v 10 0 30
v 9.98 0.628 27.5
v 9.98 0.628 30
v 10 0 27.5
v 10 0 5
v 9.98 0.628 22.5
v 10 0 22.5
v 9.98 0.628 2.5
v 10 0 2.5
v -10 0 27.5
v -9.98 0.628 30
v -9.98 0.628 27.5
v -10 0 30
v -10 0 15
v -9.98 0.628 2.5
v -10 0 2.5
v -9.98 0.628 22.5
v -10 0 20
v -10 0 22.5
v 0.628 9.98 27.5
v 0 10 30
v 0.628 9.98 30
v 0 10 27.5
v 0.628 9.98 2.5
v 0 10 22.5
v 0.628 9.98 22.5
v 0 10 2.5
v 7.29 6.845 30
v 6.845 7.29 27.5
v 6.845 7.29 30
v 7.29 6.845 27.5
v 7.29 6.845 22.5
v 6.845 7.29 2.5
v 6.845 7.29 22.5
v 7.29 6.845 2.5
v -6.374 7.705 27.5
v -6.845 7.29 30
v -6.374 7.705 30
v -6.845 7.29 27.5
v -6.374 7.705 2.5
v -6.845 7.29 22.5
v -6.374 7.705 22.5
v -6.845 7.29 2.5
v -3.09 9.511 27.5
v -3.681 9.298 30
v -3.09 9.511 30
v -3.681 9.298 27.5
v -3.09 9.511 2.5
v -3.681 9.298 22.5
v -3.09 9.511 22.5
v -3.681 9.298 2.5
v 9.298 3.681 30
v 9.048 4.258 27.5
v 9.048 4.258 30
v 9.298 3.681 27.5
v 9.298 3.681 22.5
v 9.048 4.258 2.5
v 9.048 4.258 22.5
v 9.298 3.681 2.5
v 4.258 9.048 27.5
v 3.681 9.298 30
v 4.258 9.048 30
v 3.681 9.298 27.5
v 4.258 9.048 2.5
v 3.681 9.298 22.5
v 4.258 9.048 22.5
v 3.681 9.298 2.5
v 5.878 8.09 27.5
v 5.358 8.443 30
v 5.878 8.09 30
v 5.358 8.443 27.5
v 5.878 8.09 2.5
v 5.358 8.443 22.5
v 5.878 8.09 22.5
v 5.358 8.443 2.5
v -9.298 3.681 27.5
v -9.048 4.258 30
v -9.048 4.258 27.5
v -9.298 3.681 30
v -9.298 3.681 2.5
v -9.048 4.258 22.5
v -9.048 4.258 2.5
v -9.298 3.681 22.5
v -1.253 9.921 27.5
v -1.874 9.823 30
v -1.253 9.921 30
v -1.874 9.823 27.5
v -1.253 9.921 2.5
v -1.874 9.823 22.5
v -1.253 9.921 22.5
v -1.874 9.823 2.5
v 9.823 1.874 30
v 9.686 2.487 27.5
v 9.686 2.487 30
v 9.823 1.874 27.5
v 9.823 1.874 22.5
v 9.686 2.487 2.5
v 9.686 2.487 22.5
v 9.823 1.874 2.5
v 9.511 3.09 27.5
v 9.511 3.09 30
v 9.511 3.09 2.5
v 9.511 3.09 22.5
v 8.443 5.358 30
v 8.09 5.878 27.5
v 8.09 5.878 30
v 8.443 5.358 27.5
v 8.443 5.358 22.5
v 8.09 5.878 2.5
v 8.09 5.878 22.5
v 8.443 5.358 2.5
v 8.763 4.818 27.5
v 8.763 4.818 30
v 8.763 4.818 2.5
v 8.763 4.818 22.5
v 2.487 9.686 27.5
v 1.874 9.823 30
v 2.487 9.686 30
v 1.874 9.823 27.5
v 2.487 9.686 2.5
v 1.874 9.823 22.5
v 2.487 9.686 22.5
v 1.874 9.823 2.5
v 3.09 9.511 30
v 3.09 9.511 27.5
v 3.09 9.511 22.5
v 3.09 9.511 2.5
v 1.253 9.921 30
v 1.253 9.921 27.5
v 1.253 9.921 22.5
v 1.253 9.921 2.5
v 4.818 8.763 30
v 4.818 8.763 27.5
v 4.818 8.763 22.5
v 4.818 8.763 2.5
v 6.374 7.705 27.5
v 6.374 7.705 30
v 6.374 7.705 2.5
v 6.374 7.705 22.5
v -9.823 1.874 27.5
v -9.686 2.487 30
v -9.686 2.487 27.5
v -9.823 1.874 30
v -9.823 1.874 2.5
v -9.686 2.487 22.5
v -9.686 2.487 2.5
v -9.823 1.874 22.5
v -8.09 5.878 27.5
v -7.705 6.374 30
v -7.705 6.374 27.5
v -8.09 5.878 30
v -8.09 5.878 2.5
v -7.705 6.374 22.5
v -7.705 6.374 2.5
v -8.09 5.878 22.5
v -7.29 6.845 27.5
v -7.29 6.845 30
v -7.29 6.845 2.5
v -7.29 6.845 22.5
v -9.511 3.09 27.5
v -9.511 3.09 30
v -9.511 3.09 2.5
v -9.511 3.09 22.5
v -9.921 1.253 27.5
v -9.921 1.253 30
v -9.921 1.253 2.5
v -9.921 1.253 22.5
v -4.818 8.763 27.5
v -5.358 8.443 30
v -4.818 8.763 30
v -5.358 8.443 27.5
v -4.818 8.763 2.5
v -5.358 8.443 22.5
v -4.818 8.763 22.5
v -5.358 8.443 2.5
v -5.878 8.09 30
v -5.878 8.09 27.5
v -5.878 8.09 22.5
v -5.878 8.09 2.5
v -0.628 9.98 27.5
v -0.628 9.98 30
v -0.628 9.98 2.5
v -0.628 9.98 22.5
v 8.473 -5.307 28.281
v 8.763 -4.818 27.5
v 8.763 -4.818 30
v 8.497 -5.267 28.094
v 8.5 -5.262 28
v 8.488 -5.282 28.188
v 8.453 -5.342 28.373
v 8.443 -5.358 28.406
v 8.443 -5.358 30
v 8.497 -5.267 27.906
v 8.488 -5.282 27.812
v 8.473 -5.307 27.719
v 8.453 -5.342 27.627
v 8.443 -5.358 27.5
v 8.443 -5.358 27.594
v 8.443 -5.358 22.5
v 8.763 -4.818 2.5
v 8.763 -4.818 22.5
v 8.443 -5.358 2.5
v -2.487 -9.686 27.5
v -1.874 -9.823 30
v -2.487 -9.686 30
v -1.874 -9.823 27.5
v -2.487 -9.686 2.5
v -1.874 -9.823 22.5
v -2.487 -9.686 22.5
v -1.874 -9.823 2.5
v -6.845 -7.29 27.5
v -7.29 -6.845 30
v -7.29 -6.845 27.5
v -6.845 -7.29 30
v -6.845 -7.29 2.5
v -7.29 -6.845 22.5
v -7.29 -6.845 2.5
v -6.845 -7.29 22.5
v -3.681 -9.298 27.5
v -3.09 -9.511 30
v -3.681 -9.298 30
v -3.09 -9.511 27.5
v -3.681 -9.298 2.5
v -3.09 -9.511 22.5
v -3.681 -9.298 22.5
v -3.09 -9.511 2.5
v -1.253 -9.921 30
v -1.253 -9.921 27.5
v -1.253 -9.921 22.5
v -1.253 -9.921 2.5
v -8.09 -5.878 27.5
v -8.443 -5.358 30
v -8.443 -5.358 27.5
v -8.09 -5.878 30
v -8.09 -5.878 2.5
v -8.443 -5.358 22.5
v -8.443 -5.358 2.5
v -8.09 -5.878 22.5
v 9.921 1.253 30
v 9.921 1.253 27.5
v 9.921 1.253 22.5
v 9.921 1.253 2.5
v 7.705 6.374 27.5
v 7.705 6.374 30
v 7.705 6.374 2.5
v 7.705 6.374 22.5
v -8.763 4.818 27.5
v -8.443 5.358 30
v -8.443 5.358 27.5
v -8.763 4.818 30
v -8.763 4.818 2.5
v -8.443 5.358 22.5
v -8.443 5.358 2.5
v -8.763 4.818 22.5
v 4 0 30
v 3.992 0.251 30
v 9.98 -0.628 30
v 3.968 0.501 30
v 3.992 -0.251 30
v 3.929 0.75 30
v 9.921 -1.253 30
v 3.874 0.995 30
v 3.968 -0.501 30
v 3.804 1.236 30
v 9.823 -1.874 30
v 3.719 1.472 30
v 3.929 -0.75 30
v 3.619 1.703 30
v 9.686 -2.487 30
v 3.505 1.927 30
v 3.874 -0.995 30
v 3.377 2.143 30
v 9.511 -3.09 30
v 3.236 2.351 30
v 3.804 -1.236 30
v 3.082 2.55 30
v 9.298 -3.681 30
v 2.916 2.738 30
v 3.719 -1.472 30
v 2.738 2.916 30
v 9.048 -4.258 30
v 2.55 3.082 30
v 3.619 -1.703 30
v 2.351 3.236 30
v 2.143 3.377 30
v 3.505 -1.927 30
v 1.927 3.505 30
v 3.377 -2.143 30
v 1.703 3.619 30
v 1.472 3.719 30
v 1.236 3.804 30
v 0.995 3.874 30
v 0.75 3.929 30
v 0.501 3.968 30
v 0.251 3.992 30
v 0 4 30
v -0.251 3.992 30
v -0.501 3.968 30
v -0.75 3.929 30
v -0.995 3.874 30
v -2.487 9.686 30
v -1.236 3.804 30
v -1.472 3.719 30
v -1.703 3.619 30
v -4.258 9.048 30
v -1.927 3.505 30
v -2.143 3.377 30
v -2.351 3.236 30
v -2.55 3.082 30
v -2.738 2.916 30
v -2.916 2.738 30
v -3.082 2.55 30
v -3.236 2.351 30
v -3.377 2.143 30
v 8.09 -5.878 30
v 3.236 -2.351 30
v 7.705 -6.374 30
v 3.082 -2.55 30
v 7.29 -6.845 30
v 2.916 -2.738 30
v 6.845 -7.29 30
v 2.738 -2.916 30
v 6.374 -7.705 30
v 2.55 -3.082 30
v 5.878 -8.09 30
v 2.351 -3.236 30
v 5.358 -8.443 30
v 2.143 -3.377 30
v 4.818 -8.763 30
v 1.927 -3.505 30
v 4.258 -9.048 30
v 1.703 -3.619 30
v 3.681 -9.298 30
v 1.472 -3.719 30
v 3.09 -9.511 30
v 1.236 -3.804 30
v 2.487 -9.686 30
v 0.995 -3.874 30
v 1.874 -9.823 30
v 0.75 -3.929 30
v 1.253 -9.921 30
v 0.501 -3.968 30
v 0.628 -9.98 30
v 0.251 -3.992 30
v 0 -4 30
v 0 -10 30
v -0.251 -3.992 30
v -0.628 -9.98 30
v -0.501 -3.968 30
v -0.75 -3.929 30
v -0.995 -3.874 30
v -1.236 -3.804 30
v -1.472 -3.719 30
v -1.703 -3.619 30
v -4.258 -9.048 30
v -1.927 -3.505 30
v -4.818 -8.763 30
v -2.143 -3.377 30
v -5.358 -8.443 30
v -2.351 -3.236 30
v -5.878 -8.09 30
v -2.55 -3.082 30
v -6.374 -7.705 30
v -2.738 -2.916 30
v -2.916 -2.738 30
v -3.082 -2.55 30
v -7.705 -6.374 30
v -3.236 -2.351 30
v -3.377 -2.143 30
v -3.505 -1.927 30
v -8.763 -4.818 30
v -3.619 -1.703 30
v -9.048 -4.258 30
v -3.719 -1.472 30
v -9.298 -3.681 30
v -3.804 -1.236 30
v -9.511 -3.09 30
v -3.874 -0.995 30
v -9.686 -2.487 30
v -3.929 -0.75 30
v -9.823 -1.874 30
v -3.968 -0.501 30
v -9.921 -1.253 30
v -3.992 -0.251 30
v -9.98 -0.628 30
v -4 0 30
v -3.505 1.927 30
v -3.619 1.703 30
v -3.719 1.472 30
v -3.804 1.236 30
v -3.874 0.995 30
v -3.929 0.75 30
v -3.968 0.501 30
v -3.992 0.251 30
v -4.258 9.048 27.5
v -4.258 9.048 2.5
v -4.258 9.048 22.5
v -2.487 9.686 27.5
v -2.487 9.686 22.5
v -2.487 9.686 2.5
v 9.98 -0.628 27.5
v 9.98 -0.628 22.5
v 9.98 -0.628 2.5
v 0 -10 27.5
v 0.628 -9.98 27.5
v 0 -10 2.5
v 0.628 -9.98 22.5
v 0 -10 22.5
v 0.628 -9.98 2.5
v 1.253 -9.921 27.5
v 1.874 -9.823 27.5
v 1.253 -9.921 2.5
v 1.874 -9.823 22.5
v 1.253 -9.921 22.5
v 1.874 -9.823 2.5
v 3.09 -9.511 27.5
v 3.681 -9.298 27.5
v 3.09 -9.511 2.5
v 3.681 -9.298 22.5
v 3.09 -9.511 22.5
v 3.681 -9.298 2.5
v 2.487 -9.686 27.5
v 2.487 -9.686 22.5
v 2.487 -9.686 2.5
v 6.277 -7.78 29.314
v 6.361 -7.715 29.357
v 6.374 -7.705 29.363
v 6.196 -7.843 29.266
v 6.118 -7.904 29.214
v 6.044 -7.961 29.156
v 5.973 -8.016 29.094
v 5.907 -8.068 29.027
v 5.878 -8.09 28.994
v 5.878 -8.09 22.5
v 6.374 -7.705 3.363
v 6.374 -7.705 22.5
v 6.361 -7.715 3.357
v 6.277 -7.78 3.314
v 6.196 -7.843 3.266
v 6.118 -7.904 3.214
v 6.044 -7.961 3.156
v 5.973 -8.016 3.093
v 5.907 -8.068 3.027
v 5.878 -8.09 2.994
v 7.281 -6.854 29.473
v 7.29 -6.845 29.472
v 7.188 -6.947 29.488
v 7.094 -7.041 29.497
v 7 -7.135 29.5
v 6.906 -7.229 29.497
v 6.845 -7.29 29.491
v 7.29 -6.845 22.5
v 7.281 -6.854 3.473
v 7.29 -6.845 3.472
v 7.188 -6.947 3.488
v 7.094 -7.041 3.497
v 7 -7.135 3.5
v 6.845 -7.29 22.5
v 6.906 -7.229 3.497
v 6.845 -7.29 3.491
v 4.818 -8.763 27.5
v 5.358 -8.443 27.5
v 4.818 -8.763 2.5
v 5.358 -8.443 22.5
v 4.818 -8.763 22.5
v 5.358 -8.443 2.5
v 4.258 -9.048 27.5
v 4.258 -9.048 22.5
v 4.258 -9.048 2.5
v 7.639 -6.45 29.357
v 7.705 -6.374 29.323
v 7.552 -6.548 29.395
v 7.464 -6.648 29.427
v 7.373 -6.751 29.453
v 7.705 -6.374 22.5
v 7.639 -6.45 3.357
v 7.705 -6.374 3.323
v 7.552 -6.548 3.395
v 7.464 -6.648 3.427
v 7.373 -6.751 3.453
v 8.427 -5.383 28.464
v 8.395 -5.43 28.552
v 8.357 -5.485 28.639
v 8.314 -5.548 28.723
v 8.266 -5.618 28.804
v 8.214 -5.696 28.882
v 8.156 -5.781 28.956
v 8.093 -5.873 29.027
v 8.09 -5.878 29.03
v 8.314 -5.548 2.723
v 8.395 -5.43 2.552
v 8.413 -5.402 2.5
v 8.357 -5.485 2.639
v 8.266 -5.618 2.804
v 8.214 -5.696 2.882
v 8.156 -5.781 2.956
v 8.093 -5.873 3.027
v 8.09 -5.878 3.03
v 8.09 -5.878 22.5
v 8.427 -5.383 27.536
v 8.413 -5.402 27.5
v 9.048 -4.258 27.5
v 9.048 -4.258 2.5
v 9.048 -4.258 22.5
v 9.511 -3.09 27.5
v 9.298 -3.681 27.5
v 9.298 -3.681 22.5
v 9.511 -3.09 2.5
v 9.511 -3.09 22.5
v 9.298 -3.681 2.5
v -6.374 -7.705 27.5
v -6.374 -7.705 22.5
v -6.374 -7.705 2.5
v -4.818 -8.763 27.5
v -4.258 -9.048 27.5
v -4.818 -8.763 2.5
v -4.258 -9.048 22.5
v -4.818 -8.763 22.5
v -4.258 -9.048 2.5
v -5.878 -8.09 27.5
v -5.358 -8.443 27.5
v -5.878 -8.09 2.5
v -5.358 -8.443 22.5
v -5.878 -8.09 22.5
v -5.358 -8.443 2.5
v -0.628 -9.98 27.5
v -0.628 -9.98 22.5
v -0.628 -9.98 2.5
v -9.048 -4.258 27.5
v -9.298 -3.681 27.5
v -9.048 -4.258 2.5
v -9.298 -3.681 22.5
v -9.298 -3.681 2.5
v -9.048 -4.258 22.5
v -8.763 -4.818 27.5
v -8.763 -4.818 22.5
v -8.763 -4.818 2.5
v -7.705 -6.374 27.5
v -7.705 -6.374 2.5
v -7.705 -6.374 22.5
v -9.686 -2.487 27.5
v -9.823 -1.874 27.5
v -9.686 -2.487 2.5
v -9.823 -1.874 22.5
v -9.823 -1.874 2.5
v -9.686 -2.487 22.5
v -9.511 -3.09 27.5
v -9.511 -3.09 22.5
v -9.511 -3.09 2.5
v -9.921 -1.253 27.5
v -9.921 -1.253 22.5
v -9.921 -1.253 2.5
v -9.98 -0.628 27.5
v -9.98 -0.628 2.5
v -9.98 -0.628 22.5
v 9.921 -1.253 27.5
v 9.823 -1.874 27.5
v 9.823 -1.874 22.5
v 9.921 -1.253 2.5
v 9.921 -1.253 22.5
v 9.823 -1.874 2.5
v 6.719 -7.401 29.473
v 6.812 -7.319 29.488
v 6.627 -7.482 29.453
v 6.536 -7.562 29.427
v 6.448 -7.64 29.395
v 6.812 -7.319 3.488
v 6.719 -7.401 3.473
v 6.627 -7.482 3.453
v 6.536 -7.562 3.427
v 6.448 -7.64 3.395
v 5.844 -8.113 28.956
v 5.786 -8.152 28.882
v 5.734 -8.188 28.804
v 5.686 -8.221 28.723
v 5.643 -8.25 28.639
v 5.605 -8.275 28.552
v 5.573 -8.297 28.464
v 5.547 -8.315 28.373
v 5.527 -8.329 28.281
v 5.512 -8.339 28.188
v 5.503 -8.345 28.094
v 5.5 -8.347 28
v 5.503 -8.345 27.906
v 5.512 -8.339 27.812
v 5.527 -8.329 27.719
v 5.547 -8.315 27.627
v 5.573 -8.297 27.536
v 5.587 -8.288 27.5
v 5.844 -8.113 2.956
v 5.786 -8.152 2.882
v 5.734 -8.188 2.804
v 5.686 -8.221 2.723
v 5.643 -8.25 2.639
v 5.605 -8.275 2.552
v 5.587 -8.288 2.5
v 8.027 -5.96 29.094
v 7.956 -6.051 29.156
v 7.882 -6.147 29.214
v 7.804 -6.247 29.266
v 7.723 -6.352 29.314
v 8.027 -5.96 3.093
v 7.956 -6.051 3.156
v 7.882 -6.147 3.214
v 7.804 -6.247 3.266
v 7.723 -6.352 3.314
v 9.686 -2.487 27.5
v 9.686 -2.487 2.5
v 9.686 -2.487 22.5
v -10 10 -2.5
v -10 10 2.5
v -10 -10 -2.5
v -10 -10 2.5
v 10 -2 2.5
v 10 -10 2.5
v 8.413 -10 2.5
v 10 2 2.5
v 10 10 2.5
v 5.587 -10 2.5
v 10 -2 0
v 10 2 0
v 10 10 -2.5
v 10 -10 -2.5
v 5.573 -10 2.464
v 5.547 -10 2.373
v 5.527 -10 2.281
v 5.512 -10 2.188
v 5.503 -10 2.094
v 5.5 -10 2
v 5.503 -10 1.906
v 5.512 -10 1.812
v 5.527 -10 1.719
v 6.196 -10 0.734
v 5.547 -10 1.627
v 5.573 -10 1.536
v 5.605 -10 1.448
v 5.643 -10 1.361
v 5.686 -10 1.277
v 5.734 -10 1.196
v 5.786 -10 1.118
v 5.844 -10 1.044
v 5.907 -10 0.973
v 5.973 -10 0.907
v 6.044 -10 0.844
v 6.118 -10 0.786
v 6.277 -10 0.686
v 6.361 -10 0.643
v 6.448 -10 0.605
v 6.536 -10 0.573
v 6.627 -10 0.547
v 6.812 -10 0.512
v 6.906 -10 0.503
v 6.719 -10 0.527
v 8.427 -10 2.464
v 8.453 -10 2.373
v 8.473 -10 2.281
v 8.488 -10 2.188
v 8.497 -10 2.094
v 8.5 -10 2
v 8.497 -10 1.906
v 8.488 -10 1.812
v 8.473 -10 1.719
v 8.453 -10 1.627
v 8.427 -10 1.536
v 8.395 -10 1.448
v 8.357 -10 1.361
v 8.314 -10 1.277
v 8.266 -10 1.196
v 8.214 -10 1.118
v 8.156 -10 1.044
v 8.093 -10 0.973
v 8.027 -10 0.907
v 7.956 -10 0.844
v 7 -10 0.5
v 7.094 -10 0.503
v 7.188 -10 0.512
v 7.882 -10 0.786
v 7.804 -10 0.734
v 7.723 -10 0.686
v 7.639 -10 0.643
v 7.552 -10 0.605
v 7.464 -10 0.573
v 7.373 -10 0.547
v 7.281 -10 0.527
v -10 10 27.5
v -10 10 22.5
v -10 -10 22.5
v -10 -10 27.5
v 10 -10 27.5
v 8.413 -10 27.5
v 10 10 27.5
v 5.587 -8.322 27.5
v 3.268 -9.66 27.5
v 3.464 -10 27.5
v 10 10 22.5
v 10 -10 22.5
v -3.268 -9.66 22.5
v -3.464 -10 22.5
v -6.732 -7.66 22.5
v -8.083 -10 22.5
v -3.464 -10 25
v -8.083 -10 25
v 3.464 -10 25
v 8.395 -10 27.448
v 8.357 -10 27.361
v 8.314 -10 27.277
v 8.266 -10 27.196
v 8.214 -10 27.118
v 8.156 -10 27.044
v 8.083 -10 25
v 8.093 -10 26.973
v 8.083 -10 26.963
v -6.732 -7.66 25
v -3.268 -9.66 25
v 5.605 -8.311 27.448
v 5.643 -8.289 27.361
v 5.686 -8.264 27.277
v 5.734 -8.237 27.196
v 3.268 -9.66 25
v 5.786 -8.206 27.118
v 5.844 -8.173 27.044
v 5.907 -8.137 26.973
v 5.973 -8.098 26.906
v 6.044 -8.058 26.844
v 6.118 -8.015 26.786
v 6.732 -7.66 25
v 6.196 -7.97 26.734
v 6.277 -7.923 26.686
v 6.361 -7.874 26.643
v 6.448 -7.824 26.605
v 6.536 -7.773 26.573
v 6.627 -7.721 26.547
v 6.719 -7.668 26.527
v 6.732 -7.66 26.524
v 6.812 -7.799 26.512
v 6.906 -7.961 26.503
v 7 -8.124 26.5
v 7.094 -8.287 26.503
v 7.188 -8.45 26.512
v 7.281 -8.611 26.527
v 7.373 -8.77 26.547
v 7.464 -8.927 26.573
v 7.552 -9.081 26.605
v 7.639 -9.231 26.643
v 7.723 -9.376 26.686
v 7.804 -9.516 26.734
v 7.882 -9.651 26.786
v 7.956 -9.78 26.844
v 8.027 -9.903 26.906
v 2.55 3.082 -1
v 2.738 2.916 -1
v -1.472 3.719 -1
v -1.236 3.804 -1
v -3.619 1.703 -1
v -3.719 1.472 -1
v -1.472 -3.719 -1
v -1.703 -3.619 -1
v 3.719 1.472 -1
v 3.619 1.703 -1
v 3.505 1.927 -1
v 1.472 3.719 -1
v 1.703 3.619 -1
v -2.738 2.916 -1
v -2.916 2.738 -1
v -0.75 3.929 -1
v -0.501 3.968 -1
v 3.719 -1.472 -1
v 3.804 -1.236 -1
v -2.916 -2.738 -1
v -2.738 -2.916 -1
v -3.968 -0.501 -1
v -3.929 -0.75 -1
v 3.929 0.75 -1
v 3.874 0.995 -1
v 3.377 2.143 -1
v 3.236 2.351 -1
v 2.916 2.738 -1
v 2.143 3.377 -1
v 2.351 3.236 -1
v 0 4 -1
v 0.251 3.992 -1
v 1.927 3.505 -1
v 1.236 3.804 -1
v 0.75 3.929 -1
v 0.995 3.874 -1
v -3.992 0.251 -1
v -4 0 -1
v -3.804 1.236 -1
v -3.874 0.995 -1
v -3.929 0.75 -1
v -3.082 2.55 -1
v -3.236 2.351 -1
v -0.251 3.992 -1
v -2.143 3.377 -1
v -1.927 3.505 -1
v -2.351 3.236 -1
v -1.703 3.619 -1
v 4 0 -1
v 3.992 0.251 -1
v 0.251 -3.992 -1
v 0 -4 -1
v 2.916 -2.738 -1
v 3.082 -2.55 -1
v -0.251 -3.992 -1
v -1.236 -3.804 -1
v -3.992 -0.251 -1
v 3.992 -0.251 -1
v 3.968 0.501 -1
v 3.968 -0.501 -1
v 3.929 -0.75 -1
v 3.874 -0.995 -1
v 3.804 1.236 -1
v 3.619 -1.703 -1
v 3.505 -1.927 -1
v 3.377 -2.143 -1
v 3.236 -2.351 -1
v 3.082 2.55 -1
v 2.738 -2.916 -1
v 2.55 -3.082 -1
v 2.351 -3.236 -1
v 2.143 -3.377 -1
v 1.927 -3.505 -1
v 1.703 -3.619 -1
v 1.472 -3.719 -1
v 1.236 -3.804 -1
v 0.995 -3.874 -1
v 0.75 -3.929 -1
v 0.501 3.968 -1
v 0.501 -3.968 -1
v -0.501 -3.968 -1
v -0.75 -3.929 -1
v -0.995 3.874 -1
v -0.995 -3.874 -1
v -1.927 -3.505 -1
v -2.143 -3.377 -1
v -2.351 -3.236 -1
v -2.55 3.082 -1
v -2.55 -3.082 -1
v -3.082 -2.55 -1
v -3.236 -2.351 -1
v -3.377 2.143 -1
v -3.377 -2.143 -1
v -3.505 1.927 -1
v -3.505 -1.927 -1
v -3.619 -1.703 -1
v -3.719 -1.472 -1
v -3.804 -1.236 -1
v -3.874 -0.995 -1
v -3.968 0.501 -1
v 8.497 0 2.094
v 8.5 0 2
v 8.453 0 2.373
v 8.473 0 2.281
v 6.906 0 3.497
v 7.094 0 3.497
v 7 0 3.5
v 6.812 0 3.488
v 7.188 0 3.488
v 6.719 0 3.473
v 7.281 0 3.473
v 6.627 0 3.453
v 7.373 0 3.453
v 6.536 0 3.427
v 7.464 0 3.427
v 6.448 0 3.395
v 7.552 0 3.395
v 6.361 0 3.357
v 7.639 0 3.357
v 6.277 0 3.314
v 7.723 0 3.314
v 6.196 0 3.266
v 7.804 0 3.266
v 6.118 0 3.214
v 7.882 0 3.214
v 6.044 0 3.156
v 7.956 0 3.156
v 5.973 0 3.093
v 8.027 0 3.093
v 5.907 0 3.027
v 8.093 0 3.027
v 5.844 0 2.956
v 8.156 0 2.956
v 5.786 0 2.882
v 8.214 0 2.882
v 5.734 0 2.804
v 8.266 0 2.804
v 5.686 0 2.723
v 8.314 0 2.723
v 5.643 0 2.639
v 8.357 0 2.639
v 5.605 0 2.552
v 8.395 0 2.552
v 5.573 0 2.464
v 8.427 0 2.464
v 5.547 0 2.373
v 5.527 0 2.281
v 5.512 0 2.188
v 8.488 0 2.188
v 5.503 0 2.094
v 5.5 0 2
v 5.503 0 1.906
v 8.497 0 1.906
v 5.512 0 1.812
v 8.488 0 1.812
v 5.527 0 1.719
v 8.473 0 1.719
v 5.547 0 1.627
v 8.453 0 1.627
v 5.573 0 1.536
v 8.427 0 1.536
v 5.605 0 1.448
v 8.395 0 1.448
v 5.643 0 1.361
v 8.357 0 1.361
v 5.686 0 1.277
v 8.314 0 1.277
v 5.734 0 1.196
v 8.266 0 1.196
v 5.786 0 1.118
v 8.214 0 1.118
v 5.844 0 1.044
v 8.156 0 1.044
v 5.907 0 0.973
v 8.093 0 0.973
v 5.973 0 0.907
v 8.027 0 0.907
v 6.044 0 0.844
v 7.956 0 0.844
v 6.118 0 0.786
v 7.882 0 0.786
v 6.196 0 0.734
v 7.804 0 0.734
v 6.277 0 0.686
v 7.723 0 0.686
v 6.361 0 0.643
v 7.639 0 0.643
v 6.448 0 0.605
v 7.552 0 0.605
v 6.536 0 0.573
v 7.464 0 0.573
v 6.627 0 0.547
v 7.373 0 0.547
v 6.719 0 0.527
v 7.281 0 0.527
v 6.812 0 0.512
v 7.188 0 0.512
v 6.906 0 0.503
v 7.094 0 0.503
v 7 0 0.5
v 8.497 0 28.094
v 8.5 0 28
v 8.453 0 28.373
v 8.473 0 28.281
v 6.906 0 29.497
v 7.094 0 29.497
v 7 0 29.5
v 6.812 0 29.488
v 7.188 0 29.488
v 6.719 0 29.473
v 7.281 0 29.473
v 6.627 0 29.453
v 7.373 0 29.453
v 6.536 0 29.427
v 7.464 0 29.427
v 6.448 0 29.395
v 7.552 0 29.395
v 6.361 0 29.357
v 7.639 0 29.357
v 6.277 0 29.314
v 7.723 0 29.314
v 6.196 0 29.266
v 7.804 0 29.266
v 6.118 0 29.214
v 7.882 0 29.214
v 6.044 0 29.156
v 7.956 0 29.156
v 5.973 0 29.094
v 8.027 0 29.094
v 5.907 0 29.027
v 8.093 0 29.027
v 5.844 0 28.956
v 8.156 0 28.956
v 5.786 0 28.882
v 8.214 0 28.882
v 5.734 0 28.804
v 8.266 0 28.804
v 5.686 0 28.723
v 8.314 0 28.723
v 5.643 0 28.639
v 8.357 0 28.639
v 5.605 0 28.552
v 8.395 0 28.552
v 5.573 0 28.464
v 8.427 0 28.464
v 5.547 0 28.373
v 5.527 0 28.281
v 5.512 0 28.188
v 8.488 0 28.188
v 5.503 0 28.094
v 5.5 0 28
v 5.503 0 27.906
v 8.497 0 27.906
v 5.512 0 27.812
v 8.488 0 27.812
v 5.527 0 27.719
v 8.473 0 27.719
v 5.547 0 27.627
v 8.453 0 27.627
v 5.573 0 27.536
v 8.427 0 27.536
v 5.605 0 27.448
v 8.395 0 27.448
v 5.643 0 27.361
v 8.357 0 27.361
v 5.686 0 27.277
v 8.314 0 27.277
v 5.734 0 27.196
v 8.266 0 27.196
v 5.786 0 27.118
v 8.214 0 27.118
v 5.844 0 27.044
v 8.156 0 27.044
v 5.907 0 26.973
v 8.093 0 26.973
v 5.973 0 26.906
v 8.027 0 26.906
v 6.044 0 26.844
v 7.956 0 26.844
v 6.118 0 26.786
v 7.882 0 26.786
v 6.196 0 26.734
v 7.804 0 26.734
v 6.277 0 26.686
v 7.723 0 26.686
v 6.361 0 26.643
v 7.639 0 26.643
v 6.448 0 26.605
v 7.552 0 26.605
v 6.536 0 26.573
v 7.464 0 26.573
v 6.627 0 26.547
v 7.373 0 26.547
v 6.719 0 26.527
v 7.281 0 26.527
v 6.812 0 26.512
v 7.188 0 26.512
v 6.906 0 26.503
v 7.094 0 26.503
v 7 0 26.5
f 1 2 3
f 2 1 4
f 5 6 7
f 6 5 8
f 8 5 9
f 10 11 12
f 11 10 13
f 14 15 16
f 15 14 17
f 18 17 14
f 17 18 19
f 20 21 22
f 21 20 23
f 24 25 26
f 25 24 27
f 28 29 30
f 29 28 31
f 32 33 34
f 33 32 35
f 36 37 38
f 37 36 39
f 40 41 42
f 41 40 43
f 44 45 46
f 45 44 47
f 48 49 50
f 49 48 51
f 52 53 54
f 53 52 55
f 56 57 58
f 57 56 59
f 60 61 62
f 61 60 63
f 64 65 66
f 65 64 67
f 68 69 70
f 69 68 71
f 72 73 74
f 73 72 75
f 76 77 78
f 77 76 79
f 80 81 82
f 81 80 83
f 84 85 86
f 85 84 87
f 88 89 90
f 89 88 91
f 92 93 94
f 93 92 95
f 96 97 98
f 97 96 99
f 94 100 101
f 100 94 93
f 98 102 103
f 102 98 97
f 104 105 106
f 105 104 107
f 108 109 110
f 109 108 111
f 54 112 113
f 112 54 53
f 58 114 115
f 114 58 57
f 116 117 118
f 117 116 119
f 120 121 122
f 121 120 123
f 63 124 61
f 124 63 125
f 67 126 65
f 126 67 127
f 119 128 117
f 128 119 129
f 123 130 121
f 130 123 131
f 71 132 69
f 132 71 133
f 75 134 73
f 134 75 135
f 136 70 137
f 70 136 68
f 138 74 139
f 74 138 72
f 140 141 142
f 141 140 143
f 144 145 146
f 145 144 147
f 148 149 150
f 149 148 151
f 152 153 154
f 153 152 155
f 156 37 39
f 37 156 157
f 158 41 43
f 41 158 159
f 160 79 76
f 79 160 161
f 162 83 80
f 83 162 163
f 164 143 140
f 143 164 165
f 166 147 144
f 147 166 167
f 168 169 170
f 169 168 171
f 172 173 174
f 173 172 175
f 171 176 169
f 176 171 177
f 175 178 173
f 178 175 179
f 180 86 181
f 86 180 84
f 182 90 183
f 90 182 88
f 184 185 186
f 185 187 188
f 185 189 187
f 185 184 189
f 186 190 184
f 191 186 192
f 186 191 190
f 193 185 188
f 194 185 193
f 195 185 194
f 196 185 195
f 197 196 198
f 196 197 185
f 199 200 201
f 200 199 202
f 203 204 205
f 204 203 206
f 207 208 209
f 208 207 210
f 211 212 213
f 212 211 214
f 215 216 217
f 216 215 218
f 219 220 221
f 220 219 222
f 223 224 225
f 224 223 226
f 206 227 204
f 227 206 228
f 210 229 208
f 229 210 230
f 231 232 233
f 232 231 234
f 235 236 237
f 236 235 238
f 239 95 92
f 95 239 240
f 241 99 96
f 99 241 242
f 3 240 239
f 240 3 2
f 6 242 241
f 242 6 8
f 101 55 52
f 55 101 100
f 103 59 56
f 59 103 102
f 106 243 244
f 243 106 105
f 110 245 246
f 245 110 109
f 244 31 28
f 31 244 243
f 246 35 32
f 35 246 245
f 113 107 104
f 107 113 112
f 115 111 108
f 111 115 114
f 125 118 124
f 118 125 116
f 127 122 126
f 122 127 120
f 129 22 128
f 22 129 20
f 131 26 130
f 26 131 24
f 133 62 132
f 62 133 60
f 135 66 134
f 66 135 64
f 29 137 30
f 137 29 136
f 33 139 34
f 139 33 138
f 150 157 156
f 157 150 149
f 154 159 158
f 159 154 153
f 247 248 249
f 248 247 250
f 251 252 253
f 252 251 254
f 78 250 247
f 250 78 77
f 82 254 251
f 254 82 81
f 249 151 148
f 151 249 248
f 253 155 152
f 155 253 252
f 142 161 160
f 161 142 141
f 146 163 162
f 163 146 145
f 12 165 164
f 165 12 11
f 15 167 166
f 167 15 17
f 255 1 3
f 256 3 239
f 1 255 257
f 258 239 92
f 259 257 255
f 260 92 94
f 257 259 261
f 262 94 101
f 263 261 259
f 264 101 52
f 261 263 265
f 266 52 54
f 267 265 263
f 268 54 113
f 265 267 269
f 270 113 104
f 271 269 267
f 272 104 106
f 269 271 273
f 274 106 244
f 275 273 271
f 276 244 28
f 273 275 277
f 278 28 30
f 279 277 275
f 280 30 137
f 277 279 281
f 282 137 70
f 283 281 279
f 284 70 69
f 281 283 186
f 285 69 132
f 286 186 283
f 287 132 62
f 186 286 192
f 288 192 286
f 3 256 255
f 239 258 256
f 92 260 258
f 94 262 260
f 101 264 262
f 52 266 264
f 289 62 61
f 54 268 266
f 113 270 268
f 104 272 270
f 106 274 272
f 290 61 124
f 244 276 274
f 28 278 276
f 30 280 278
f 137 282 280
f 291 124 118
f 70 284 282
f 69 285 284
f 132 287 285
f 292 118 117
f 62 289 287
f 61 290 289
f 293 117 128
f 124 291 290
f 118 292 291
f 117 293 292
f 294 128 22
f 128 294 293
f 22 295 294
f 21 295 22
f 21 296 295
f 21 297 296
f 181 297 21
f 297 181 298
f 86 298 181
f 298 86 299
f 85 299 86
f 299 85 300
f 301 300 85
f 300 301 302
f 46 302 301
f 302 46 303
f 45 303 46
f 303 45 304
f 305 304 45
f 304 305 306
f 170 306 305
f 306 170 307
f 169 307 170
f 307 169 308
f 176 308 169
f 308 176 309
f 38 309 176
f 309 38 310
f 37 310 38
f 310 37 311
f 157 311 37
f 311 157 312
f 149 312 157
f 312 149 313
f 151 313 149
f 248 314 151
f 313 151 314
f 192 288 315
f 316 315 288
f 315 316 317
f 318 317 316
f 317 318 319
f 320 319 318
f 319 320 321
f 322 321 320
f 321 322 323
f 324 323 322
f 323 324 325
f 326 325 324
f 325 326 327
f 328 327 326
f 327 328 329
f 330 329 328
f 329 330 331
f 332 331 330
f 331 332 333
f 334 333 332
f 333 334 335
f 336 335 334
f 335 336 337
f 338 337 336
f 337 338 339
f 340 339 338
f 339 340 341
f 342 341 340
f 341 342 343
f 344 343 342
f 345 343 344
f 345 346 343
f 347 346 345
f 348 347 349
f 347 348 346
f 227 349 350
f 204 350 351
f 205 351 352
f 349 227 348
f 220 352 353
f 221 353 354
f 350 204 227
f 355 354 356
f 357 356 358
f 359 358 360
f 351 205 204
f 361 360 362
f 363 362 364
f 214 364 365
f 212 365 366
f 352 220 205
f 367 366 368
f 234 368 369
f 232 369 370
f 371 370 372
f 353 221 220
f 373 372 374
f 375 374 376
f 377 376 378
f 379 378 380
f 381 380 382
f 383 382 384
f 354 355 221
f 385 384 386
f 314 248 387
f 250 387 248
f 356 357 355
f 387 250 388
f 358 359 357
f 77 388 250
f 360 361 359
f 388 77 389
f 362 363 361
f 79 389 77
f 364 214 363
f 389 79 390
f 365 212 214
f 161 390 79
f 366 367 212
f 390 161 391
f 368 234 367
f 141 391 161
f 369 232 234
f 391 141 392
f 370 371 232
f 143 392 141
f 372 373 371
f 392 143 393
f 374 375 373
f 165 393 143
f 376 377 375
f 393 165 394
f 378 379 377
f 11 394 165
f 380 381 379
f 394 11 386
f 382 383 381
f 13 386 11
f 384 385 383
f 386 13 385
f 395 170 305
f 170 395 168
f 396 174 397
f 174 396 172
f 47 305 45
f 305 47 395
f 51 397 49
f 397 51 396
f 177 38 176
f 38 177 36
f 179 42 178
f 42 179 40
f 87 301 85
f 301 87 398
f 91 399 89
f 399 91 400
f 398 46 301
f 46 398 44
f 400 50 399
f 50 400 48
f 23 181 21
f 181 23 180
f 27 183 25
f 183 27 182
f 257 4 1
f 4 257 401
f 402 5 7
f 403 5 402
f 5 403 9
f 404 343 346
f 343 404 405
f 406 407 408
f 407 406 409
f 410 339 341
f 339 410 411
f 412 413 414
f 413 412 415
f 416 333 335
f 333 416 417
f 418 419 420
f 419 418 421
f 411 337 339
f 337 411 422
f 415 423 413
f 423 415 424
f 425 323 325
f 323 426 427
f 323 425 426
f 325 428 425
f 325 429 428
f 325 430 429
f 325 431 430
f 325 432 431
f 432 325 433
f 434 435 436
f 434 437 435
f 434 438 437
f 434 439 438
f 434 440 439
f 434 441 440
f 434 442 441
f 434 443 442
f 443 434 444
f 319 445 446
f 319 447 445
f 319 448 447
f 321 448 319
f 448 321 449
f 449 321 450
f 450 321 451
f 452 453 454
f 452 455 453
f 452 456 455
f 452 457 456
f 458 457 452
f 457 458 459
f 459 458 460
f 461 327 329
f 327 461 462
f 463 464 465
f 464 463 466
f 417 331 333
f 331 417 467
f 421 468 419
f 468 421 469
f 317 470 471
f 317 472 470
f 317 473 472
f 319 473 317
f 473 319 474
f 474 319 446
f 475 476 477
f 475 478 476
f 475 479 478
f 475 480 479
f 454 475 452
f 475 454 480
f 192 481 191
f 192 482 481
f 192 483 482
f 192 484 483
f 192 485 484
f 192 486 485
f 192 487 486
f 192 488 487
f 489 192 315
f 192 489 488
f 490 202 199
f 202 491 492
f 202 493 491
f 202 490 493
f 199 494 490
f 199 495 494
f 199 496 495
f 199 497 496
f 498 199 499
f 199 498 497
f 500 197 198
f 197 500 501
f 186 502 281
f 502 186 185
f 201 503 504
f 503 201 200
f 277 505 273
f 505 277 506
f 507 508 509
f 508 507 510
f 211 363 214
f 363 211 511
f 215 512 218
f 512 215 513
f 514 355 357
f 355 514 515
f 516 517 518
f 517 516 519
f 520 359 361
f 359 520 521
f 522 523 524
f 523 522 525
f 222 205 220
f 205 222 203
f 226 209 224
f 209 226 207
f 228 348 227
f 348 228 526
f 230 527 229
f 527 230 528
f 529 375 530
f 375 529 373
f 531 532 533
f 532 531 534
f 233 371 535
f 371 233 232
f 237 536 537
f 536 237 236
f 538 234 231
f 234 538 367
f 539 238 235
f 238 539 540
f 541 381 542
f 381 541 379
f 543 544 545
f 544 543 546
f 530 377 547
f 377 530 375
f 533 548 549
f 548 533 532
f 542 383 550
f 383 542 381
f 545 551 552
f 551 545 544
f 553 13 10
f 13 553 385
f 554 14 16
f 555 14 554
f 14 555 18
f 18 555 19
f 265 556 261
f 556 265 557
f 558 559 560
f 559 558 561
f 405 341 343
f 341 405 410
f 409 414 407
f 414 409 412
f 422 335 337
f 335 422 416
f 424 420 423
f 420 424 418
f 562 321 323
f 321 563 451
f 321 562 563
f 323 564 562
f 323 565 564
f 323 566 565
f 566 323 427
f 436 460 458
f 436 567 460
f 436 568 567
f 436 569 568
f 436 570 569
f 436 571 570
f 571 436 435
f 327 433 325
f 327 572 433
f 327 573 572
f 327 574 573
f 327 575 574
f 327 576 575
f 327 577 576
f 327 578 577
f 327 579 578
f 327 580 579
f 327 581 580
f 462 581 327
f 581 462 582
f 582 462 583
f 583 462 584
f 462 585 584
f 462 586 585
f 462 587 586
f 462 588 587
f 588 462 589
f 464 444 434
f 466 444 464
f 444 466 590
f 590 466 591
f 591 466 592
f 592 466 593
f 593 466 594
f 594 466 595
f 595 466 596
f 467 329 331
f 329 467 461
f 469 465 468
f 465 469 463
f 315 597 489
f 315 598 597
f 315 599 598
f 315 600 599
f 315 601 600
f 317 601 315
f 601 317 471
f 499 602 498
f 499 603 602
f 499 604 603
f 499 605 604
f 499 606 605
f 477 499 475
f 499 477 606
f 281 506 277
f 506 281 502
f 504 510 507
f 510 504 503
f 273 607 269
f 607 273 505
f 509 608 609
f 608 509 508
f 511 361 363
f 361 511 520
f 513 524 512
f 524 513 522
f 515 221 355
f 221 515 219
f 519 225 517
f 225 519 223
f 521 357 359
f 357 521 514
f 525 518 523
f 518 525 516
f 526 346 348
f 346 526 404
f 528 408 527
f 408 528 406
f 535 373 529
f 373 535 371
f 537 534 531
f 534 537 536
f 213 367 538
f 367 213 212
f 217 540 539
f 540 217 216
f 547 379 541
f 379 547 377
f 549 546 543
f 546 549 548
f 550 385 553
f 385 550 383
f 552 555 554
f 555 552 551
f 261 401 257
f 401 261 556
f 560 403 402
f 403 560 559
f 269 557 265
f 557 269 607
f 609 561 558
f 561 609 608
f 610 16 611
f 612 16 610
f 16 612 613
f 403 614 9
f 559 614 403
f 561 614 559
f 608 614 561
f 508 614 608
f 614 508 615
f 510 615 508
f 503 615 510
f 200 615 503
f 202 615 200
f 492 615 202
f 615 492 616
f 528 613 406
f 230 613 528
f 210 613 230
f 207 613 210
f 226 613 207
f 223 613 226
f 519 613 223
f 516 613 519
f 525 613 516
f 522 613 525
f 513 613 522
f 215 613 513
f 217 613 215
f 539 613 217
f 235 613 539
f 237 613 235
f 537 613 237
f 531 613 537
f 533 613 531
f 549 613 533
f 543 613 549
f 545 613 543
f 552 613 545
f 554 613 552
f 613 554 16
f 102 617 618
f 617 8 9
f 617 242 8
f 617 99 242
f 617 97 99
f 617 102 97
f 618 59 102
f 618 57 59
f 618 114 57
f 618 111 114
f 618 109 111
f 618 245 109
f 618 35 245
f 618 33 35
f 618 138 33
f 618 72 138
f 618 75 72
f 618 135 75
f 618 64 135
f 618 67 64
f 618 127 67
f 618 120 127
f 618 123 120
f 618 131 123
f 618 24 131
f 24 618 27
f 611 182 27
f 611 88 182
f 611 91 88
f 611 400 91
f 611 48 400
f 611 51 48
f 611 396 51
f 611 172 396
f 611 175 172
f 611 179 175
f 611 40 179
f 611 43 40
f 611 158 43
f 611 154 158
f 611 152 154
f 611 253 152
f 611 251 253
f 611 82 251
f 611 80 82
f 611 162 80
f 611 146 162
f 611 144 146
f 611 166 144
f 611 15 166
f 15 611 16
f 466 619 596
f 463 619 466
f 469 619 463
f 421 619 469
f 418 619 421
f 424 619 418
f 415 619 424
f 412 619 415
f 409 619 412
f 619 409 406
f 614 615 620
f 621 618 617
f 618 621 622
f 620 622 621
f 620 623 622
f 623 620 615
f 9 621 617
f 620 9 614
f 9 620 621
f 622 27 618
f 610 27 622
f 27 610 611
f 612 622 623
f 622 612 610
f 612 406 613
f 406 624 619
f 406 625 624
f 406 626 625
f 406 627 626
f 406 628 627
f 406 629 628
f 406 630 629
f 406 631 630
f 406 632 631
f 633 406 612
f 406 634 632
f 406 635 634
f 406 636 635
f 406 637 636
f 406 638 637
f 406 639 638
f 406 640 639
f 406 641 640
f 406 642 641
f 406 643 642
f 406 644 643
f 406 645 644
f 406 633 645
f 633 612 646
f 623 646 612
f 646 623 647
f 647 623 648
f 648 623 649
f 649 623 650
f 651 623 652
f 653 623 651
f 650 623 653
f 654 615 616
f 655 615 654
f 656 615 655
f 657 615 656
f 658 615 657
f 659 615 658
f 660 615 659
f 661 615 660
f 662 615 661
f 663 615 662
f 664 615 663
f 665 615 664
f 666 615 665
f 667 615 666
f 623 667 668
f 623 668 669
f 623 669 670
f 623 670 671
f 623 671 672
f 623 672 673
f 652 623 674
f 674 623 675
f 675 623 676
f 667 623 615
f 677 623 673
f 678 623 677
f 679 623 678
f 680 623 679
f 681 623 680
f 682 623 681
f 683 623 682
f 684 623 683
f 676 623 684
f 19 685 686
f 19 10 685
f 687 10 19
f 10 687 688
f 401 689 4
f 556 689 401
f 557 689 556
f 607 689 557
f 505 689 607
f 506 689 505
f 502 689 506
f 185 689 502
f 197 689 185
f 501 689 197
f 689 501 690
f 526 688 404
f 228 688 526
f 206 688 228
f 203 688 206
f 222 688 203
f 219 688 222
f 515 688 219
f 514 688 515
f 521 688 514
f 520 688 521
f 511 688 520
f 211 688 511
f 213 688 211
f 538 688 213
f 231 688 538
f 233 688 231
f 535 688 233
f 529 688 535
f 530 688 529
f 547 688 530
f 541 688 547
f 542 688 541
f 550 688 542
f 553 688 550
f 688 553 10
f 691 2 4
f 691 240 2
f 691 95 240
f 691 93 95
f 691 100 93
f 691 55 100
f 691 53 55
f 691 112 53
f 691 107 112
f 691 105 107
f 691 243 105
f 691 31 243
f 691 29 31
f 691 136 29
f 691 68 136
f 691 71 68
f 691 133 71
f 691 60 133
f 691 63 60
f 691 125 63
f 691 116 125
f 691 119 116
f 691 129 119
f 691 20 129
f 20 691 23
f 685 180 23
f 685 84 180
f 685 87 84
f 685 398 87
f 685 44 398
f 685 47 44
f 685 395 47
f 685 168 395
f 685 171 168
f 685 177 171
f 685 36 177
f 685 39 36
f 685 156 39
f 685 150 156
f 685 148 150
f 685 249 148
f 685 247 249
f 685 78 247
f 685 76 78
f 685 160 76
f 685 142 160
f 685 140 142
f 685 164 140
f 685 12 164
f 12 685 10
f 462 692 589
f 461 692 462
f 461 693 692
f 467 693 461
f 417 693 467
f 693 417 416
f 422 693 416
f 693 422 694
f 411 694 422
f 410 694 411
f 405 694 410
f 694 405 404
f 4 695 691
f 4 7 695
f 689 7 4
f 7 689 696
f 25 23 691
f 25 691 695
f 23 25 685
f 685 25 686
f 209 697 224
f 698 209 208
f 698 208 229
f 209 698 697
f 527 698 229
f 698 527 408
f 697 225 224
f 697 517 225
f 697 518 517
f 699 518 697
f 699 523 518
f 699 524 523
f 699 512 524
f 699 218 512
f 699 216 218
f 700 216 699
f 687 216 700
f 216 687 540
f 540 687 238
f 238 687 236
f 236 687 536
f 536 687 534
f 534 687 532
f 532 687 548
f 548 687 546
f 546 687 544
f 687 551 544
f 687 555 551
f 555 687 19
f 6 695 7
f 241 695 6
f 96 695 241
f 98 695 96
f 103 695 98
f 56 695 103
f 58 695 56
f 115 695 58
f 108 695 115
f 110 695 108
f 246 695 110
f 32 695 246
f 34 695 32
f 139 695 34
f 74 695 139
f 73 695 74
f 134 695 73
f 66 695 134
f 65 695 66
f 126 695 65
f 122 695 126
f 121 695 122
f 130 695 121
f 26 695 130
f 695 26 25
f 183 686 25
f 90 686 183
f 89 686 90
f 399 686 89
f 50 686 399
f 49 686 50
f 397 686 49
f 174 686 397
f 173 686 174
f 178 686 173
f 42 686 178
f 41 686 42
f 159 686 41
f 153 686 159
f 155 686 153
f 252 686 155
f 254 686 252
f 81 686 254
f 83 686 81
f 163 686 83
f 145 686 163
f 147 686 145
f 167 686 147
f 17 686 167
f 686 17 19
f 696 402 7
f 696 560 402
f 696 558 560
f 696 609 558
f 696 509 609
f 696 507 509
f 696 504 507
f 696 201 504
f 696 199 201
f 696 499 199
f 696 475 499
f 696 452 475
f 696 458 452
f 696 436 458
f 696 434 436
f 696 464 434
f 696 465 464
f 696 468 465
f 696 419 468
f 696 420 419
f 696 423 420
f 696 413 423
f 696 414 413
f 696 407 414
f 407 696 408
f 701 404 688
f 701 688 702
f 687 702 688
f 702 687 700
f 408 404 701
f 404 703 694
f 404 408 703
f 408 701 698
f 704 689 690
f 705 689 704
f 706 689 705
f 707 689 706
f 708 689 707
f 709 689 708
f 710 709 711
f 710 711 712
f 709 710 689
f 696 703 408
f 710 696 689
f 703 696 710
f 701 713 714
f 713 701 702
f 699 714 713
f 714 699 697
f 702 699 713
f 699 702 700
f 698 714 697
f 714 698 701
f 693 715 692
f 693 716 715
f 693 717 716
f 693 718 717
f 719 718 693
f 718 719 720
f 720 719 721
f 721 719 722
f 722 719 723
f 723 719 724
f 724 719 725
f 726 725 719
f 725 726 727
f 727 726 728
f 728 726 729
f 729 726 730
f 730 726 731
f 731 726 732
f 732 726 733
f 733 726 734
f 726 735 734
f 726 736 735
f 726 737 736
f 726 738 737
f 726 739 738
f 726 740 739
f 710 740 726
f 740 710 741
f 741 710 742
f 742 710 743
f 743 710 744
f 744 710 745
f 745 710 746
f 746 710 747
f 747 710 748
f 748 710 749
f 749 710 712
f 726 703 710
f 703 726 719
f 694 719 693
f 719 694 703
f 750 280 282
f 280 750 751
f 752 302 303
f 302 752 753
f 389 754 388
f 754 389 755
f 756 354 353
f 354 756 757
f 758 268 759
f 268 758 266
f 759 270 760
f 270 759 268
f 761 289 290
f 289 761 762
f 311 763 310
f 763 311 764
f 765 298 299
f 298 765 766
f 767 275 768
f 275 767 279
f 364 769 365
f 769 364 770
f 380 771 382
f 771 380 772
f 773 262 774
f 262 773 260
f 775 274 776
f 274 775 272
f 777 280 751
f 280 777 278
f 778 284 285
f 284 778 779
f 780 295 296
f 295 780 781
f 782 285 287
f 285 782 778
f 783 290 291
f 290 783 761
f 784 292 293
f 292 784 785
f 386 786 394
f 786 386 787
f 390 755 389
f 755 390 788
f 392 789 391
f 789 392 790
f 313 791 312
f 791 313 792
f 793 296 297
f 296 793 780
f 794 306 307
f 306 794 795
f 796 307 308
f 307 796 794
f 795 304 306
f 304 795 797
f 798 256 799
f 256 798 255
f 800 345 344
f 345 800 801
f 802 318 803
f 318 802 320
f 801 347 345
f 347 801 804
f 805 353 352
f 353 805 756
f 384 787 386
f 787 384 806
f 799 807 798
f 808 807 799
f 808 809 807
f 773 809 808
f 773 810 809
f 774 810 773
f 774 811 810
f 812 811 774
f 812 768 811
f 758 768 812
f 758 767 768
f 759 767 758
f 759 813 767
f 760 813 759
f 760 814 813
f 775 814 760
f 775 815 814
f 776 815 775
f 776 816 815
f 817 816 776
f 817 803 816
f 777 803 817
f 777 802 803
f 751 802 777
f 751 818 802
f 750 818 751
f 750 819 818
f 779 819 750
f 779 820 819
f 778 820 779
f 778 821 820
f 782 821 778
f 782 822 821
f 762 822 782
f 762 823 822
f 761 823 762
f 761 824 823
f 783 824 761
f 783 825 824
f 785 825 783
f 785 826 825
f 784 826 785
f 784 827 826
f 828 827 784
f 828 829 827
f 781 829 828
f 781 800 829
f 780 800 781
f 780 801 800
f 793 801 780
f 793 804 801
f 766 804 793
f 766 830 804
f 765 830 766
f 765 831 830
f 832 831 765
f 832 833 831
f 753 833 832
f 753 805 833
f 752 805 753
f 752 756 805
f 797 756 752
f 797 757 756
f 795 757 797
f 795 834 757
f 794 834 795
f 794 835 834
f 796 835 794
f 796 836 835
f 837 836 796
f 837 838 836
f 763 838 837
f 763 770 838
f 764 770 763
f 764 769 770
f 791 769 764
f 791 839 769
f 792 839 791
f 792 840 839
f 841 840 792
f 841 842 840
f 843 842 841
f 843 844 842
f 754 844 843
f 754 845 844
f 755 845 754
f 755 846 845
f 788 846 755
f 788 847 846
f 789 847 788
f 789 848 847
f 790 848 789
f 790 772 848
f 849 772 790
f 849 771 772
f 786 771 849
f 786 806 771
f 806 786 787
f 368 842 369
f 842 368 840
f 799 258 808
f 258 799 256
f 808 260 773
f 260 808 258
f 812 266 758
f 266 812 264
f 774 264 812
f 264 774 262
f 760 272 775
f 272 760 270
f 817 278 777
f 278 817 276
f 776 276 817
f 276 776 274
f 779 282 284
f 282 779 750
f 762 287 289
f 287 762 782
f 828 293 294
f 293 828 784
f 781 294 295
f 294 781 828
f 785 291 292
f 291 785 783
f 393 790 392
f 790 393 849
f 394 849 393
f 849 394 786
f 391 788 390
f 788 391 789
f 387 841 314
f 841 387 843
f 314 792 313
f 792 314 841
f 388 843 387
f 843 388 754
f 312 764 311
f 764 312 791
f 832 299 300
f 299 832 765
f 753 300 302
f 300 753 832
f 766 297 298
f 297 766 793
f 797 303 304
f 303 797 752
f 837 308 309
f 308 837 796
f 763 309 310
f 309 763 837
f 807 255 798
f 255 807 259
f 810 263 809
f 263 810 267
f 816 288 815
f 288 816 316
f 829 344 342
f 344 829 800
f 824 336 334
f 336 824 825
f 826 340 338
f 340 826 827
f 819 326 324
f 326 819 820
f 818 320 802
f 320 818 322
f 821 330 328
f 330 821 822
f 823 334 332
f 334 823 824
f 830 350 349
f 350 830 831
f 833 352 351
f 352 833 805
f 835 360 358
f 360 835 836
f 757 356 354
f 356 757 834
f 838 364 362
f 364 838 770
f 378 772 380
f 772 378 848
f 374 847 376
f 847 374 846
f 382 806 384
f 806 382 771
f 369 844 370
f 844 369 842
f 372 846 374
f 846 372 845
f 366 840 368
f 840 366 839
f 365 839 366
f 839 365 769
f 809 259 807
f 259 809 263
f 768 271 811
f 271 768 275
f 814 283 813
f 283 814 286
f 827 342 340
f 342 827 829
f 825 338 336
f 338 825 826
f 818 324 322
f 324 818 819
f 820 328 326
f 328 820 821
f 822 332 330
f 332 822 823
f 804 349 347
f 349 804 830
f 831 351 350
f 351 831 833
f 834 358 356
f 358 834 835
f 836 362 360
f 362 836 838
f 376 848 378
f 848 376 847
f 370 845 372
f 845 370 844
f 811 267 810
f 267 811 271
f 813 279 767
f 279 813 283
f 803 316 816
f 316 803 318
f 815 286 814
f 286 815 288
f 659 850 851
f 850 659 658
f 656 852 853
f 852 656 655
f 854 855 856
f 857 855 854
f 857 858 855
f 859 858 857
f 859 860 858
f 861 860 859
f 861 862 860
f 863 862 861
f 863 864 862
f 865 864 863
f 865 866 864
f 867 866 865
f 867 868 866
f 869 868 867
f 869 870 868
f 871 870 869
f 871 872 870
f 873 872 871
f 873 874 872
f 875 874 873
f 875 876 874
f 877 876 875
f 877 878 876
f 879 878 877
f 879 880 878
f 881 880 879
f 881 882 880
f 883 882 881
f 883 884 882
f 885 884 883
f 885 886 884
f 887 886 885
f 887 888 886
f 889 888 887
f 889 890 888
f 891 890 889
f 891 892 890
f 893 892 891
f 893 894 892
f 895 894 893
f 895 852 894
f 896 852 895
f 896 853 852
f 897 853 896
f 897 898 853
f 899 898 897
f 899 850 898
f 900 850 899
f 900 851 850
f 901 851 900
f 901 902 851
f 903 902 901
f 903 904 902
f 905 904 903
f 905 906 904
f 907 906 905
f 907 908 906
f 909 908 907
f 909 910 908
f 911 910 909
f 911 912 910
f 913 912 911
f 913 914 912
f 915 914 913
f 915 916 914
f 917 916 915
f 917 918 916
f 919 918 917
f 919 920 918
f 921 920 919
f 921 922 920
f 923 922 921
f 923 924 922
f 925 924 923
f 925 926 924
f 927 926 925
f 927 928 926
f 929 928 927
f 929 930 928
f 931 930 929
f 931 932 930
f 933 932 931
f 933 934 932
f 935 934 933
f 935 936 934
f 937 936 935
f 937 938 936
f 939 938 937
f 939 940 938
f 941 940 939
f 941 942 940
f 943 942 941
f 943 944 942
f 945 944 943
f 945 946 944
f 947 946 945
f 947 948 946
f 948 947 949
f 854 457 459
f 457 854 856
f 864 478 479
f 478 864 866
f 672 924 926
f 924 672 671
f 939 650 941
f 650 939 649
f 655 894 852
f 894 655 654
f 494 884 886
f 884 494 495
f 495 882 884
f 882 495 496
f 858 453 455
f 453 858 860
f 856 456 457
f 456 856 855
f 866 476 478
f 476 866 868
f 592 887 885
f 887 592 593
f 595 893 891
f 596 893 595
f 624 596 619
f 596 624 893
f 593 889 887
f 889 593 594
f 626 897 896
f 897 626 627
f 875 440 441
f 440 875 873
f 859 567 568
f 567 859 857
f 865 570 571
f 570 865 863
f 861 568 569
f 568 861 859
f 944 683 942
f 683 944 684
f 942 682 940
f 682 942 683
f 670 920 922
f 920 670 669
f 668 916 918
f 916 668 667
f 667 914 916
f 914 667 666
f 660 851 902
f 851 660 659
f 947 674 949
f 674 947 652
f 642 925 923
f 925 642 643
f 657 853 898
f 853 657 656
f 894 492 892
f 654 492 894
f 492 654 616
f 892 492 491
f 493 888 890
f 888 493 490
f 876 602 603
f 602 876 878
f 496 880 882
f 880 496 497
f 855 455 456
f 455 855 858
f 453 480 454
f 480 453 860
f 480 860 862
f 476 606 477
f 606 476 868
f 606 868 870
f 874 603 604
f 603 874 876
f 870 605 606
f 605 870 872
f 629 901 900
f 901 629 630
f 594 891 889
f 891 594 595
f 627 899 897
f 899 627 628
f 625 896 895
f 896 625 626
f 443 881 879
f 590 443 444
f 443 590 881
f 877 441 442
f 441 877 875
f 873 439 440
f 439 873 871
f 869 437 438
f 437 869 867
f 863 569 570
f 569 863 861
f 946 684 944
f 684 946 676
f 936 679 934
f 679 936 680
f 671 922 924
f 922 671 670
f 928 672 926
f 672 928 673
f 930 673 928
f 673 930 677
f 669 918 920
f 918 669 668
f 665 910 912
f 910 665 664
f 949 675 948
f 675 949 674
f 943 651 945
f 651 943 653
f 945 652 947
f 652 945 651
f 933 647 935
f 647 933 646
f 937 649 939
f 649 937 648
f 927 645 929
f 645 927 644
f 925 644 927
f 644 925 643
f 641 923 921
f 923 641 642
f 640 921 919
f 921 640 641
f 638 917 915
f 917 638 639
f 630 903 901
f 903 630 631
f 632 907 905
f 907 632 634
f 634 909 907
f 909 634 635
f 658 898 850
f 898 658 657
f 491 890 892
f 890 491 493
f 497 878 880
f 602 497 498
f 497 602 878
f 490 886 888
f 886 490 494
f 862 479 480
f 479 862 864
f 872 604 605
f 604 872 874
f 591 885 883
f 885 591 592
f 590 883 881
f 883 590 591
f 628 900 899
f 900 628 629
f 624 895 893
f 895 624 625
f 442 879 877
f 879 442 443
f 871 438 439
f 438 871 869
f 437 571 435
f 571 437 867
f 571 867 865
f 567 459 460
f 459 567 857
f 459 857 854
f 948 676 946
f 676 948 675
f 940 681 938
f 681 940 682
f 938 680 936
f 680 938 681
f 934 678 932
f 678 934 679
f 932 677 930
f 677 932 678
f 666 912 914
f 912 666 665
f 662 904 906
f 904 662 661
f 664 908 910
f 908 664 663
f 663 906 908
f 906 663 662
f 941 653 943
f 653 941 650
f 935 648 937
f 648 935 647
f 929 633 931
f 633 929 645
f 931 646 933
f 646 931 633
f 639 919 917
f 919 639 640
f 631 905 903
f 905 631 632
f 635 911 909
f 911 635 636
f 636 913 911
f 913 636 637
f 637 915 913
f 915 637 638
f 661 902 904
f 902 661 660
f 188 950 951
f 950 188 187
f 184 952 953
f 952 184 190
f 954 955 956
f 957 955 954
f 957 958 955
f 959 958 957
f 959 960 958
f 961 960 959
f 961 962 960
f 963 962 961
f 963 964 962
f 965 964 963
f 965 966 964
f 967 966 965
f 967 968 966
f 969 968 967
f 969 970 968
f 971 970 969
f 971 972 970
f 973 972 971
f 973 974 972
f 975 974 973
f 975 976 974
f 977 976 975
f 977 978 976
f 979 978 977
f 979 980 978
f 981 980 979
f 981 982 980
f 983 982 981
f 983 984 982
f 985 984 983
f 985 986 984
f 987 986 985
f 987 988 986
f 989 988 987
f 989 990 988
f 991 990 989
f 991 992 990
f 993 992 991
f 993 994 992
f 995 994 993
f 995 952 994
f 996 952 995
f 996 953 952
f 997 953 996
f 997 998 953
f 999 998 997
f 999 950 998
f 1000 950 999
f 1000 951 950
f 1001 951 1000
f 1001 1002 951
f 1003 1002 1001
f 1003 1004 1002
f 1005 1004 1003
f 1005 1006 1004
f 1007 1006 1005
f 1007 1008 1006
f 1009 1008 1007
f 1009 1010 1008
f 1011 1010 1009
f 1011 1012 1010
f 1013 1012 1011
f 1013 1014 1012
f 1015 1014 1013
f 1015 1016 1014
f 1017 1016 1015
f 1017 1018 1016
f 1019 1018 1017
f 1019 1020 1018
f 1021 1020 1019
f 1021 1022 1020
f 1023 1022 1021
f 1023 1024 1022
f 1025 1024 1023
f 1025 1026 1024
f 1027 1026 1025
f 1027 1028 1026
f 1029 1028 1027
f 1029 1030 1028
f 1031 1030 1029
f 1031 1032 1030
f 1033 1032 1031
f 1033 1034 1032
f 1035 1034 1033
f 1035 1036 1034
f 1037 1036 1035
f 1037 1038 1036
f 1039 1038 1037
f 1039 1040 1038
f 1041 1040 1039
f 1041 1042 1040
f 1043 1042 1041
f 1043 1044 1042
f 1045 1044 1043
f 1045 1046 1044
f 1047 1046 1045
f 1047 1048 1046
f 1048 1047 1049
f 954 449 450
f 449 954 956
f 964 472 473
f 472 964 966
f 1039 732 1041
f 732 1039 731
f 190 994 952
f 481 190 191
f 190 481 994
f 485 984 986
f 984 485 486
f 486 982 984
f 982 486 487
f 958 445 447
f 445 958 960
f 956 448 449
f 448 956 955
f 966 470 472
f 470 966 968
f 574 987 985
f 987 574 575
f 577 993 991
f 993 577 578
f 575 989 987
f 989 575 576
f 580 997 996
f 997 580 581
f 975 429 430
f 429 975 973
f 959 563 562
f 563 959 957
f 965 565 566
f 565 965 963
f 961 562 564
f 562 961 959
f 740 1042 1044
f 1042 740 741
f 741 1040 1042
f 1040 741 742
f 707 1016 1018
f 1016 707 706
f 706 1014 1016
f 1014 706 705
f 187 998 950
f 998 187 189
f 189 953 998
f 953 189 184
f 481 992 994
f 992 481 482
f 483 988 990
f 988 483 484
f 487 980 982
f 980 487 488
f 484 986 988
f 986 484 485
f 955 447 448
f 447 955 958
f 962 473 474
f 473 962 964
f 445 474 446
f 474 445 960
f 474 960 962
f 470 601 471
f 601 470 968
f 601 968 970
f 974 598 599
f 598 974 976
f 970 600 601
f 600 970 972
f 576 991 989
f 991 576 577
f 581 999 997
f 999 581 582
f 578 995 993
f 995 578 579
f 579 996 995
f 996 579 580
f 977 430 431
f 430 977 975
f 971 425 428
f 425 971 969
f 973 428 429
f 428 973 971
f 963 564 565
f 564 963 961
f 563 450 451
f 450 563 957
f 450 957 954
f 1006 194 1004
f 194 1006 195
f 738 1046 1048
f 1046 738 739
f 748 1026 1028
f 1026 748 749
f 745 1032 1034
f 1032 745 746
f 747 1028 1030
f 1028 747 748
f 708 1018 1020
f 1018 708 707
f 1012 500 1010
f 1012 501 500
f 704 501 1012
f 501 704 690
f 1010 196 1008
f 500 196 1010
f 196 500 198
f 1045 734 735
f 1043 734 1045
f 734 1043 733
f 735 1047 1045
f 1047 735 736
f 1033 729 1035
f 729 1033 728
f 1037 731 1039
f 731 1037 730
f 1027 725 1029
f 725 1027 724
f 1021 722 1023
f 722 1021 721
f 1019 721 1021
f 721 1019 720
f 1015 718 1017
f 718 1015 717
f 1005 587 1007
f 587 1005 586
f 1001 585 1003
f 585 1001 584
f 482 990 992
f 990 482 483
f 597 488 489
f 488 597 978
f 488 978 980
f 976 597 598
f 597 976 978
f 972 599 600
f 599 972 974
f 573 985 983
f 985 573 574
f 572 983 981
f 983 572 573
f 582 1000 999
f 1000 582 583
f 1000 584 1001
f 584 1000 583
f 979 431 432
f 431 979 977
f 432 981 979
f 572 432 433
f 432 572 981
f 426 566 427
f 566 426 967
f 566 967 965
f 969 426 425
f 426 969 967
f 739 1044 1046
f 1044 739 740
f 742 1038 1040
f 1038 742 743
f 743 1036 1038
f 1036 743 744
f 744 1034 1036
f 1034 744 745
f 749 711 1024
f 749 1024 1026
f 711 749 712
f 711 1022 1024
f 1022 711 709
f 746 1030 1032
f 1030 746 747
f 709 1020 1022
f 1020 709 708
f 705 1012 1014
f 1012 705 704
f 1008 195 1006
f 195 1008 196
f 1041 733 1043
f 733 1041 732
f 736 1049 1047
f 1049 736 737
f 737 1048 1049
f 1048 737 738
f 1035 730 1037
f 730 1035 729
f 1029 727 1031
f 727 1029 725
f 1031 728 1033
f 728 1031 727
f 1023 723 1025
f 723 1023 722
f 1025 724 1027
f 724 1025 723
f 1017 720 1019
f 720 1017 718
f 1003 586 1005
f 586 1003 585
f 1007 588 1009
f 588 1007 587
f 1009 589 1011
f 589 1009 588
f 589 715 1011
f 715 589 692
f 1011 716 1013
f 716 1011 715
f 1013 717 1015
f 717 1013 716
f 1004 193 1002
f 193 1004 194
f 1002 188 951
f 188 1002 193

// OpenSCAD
$fn = 100; // Smoothness

module flexible_coupling() {
    difference() {
        union() {
            // Main cylindrical body
            cylinder(h = 30, r = 10);

            // Clamping blocks
            translate([0, 0, 0])
                cube([20, 20, 5], center = true);
            translate([0, 0, 25])
                cube([20, 20, 5], center = true);
        }

        // Central bore
        translate([0, 0, -1])
            cylinder(h = 32, r = 4);

        // Helical cuts (simplified as rotated slots)
        for (i = [0:5]) {
            rotate([0, 0, i * 60])
                translate([10, -2, i * 5])
                    cube([20, 4, 5]);
        }

        // Clamping screw holes
        translate([7, 0, 2])
            rotate([90, 0, 0])
                cylinder(h = 20, r = 1.5);
        translate([7, 0, 28])
            rotate([90, 0, 0])
                cylinder(h = 20, r = 1.5);
    }
}

flexible_coupling();
